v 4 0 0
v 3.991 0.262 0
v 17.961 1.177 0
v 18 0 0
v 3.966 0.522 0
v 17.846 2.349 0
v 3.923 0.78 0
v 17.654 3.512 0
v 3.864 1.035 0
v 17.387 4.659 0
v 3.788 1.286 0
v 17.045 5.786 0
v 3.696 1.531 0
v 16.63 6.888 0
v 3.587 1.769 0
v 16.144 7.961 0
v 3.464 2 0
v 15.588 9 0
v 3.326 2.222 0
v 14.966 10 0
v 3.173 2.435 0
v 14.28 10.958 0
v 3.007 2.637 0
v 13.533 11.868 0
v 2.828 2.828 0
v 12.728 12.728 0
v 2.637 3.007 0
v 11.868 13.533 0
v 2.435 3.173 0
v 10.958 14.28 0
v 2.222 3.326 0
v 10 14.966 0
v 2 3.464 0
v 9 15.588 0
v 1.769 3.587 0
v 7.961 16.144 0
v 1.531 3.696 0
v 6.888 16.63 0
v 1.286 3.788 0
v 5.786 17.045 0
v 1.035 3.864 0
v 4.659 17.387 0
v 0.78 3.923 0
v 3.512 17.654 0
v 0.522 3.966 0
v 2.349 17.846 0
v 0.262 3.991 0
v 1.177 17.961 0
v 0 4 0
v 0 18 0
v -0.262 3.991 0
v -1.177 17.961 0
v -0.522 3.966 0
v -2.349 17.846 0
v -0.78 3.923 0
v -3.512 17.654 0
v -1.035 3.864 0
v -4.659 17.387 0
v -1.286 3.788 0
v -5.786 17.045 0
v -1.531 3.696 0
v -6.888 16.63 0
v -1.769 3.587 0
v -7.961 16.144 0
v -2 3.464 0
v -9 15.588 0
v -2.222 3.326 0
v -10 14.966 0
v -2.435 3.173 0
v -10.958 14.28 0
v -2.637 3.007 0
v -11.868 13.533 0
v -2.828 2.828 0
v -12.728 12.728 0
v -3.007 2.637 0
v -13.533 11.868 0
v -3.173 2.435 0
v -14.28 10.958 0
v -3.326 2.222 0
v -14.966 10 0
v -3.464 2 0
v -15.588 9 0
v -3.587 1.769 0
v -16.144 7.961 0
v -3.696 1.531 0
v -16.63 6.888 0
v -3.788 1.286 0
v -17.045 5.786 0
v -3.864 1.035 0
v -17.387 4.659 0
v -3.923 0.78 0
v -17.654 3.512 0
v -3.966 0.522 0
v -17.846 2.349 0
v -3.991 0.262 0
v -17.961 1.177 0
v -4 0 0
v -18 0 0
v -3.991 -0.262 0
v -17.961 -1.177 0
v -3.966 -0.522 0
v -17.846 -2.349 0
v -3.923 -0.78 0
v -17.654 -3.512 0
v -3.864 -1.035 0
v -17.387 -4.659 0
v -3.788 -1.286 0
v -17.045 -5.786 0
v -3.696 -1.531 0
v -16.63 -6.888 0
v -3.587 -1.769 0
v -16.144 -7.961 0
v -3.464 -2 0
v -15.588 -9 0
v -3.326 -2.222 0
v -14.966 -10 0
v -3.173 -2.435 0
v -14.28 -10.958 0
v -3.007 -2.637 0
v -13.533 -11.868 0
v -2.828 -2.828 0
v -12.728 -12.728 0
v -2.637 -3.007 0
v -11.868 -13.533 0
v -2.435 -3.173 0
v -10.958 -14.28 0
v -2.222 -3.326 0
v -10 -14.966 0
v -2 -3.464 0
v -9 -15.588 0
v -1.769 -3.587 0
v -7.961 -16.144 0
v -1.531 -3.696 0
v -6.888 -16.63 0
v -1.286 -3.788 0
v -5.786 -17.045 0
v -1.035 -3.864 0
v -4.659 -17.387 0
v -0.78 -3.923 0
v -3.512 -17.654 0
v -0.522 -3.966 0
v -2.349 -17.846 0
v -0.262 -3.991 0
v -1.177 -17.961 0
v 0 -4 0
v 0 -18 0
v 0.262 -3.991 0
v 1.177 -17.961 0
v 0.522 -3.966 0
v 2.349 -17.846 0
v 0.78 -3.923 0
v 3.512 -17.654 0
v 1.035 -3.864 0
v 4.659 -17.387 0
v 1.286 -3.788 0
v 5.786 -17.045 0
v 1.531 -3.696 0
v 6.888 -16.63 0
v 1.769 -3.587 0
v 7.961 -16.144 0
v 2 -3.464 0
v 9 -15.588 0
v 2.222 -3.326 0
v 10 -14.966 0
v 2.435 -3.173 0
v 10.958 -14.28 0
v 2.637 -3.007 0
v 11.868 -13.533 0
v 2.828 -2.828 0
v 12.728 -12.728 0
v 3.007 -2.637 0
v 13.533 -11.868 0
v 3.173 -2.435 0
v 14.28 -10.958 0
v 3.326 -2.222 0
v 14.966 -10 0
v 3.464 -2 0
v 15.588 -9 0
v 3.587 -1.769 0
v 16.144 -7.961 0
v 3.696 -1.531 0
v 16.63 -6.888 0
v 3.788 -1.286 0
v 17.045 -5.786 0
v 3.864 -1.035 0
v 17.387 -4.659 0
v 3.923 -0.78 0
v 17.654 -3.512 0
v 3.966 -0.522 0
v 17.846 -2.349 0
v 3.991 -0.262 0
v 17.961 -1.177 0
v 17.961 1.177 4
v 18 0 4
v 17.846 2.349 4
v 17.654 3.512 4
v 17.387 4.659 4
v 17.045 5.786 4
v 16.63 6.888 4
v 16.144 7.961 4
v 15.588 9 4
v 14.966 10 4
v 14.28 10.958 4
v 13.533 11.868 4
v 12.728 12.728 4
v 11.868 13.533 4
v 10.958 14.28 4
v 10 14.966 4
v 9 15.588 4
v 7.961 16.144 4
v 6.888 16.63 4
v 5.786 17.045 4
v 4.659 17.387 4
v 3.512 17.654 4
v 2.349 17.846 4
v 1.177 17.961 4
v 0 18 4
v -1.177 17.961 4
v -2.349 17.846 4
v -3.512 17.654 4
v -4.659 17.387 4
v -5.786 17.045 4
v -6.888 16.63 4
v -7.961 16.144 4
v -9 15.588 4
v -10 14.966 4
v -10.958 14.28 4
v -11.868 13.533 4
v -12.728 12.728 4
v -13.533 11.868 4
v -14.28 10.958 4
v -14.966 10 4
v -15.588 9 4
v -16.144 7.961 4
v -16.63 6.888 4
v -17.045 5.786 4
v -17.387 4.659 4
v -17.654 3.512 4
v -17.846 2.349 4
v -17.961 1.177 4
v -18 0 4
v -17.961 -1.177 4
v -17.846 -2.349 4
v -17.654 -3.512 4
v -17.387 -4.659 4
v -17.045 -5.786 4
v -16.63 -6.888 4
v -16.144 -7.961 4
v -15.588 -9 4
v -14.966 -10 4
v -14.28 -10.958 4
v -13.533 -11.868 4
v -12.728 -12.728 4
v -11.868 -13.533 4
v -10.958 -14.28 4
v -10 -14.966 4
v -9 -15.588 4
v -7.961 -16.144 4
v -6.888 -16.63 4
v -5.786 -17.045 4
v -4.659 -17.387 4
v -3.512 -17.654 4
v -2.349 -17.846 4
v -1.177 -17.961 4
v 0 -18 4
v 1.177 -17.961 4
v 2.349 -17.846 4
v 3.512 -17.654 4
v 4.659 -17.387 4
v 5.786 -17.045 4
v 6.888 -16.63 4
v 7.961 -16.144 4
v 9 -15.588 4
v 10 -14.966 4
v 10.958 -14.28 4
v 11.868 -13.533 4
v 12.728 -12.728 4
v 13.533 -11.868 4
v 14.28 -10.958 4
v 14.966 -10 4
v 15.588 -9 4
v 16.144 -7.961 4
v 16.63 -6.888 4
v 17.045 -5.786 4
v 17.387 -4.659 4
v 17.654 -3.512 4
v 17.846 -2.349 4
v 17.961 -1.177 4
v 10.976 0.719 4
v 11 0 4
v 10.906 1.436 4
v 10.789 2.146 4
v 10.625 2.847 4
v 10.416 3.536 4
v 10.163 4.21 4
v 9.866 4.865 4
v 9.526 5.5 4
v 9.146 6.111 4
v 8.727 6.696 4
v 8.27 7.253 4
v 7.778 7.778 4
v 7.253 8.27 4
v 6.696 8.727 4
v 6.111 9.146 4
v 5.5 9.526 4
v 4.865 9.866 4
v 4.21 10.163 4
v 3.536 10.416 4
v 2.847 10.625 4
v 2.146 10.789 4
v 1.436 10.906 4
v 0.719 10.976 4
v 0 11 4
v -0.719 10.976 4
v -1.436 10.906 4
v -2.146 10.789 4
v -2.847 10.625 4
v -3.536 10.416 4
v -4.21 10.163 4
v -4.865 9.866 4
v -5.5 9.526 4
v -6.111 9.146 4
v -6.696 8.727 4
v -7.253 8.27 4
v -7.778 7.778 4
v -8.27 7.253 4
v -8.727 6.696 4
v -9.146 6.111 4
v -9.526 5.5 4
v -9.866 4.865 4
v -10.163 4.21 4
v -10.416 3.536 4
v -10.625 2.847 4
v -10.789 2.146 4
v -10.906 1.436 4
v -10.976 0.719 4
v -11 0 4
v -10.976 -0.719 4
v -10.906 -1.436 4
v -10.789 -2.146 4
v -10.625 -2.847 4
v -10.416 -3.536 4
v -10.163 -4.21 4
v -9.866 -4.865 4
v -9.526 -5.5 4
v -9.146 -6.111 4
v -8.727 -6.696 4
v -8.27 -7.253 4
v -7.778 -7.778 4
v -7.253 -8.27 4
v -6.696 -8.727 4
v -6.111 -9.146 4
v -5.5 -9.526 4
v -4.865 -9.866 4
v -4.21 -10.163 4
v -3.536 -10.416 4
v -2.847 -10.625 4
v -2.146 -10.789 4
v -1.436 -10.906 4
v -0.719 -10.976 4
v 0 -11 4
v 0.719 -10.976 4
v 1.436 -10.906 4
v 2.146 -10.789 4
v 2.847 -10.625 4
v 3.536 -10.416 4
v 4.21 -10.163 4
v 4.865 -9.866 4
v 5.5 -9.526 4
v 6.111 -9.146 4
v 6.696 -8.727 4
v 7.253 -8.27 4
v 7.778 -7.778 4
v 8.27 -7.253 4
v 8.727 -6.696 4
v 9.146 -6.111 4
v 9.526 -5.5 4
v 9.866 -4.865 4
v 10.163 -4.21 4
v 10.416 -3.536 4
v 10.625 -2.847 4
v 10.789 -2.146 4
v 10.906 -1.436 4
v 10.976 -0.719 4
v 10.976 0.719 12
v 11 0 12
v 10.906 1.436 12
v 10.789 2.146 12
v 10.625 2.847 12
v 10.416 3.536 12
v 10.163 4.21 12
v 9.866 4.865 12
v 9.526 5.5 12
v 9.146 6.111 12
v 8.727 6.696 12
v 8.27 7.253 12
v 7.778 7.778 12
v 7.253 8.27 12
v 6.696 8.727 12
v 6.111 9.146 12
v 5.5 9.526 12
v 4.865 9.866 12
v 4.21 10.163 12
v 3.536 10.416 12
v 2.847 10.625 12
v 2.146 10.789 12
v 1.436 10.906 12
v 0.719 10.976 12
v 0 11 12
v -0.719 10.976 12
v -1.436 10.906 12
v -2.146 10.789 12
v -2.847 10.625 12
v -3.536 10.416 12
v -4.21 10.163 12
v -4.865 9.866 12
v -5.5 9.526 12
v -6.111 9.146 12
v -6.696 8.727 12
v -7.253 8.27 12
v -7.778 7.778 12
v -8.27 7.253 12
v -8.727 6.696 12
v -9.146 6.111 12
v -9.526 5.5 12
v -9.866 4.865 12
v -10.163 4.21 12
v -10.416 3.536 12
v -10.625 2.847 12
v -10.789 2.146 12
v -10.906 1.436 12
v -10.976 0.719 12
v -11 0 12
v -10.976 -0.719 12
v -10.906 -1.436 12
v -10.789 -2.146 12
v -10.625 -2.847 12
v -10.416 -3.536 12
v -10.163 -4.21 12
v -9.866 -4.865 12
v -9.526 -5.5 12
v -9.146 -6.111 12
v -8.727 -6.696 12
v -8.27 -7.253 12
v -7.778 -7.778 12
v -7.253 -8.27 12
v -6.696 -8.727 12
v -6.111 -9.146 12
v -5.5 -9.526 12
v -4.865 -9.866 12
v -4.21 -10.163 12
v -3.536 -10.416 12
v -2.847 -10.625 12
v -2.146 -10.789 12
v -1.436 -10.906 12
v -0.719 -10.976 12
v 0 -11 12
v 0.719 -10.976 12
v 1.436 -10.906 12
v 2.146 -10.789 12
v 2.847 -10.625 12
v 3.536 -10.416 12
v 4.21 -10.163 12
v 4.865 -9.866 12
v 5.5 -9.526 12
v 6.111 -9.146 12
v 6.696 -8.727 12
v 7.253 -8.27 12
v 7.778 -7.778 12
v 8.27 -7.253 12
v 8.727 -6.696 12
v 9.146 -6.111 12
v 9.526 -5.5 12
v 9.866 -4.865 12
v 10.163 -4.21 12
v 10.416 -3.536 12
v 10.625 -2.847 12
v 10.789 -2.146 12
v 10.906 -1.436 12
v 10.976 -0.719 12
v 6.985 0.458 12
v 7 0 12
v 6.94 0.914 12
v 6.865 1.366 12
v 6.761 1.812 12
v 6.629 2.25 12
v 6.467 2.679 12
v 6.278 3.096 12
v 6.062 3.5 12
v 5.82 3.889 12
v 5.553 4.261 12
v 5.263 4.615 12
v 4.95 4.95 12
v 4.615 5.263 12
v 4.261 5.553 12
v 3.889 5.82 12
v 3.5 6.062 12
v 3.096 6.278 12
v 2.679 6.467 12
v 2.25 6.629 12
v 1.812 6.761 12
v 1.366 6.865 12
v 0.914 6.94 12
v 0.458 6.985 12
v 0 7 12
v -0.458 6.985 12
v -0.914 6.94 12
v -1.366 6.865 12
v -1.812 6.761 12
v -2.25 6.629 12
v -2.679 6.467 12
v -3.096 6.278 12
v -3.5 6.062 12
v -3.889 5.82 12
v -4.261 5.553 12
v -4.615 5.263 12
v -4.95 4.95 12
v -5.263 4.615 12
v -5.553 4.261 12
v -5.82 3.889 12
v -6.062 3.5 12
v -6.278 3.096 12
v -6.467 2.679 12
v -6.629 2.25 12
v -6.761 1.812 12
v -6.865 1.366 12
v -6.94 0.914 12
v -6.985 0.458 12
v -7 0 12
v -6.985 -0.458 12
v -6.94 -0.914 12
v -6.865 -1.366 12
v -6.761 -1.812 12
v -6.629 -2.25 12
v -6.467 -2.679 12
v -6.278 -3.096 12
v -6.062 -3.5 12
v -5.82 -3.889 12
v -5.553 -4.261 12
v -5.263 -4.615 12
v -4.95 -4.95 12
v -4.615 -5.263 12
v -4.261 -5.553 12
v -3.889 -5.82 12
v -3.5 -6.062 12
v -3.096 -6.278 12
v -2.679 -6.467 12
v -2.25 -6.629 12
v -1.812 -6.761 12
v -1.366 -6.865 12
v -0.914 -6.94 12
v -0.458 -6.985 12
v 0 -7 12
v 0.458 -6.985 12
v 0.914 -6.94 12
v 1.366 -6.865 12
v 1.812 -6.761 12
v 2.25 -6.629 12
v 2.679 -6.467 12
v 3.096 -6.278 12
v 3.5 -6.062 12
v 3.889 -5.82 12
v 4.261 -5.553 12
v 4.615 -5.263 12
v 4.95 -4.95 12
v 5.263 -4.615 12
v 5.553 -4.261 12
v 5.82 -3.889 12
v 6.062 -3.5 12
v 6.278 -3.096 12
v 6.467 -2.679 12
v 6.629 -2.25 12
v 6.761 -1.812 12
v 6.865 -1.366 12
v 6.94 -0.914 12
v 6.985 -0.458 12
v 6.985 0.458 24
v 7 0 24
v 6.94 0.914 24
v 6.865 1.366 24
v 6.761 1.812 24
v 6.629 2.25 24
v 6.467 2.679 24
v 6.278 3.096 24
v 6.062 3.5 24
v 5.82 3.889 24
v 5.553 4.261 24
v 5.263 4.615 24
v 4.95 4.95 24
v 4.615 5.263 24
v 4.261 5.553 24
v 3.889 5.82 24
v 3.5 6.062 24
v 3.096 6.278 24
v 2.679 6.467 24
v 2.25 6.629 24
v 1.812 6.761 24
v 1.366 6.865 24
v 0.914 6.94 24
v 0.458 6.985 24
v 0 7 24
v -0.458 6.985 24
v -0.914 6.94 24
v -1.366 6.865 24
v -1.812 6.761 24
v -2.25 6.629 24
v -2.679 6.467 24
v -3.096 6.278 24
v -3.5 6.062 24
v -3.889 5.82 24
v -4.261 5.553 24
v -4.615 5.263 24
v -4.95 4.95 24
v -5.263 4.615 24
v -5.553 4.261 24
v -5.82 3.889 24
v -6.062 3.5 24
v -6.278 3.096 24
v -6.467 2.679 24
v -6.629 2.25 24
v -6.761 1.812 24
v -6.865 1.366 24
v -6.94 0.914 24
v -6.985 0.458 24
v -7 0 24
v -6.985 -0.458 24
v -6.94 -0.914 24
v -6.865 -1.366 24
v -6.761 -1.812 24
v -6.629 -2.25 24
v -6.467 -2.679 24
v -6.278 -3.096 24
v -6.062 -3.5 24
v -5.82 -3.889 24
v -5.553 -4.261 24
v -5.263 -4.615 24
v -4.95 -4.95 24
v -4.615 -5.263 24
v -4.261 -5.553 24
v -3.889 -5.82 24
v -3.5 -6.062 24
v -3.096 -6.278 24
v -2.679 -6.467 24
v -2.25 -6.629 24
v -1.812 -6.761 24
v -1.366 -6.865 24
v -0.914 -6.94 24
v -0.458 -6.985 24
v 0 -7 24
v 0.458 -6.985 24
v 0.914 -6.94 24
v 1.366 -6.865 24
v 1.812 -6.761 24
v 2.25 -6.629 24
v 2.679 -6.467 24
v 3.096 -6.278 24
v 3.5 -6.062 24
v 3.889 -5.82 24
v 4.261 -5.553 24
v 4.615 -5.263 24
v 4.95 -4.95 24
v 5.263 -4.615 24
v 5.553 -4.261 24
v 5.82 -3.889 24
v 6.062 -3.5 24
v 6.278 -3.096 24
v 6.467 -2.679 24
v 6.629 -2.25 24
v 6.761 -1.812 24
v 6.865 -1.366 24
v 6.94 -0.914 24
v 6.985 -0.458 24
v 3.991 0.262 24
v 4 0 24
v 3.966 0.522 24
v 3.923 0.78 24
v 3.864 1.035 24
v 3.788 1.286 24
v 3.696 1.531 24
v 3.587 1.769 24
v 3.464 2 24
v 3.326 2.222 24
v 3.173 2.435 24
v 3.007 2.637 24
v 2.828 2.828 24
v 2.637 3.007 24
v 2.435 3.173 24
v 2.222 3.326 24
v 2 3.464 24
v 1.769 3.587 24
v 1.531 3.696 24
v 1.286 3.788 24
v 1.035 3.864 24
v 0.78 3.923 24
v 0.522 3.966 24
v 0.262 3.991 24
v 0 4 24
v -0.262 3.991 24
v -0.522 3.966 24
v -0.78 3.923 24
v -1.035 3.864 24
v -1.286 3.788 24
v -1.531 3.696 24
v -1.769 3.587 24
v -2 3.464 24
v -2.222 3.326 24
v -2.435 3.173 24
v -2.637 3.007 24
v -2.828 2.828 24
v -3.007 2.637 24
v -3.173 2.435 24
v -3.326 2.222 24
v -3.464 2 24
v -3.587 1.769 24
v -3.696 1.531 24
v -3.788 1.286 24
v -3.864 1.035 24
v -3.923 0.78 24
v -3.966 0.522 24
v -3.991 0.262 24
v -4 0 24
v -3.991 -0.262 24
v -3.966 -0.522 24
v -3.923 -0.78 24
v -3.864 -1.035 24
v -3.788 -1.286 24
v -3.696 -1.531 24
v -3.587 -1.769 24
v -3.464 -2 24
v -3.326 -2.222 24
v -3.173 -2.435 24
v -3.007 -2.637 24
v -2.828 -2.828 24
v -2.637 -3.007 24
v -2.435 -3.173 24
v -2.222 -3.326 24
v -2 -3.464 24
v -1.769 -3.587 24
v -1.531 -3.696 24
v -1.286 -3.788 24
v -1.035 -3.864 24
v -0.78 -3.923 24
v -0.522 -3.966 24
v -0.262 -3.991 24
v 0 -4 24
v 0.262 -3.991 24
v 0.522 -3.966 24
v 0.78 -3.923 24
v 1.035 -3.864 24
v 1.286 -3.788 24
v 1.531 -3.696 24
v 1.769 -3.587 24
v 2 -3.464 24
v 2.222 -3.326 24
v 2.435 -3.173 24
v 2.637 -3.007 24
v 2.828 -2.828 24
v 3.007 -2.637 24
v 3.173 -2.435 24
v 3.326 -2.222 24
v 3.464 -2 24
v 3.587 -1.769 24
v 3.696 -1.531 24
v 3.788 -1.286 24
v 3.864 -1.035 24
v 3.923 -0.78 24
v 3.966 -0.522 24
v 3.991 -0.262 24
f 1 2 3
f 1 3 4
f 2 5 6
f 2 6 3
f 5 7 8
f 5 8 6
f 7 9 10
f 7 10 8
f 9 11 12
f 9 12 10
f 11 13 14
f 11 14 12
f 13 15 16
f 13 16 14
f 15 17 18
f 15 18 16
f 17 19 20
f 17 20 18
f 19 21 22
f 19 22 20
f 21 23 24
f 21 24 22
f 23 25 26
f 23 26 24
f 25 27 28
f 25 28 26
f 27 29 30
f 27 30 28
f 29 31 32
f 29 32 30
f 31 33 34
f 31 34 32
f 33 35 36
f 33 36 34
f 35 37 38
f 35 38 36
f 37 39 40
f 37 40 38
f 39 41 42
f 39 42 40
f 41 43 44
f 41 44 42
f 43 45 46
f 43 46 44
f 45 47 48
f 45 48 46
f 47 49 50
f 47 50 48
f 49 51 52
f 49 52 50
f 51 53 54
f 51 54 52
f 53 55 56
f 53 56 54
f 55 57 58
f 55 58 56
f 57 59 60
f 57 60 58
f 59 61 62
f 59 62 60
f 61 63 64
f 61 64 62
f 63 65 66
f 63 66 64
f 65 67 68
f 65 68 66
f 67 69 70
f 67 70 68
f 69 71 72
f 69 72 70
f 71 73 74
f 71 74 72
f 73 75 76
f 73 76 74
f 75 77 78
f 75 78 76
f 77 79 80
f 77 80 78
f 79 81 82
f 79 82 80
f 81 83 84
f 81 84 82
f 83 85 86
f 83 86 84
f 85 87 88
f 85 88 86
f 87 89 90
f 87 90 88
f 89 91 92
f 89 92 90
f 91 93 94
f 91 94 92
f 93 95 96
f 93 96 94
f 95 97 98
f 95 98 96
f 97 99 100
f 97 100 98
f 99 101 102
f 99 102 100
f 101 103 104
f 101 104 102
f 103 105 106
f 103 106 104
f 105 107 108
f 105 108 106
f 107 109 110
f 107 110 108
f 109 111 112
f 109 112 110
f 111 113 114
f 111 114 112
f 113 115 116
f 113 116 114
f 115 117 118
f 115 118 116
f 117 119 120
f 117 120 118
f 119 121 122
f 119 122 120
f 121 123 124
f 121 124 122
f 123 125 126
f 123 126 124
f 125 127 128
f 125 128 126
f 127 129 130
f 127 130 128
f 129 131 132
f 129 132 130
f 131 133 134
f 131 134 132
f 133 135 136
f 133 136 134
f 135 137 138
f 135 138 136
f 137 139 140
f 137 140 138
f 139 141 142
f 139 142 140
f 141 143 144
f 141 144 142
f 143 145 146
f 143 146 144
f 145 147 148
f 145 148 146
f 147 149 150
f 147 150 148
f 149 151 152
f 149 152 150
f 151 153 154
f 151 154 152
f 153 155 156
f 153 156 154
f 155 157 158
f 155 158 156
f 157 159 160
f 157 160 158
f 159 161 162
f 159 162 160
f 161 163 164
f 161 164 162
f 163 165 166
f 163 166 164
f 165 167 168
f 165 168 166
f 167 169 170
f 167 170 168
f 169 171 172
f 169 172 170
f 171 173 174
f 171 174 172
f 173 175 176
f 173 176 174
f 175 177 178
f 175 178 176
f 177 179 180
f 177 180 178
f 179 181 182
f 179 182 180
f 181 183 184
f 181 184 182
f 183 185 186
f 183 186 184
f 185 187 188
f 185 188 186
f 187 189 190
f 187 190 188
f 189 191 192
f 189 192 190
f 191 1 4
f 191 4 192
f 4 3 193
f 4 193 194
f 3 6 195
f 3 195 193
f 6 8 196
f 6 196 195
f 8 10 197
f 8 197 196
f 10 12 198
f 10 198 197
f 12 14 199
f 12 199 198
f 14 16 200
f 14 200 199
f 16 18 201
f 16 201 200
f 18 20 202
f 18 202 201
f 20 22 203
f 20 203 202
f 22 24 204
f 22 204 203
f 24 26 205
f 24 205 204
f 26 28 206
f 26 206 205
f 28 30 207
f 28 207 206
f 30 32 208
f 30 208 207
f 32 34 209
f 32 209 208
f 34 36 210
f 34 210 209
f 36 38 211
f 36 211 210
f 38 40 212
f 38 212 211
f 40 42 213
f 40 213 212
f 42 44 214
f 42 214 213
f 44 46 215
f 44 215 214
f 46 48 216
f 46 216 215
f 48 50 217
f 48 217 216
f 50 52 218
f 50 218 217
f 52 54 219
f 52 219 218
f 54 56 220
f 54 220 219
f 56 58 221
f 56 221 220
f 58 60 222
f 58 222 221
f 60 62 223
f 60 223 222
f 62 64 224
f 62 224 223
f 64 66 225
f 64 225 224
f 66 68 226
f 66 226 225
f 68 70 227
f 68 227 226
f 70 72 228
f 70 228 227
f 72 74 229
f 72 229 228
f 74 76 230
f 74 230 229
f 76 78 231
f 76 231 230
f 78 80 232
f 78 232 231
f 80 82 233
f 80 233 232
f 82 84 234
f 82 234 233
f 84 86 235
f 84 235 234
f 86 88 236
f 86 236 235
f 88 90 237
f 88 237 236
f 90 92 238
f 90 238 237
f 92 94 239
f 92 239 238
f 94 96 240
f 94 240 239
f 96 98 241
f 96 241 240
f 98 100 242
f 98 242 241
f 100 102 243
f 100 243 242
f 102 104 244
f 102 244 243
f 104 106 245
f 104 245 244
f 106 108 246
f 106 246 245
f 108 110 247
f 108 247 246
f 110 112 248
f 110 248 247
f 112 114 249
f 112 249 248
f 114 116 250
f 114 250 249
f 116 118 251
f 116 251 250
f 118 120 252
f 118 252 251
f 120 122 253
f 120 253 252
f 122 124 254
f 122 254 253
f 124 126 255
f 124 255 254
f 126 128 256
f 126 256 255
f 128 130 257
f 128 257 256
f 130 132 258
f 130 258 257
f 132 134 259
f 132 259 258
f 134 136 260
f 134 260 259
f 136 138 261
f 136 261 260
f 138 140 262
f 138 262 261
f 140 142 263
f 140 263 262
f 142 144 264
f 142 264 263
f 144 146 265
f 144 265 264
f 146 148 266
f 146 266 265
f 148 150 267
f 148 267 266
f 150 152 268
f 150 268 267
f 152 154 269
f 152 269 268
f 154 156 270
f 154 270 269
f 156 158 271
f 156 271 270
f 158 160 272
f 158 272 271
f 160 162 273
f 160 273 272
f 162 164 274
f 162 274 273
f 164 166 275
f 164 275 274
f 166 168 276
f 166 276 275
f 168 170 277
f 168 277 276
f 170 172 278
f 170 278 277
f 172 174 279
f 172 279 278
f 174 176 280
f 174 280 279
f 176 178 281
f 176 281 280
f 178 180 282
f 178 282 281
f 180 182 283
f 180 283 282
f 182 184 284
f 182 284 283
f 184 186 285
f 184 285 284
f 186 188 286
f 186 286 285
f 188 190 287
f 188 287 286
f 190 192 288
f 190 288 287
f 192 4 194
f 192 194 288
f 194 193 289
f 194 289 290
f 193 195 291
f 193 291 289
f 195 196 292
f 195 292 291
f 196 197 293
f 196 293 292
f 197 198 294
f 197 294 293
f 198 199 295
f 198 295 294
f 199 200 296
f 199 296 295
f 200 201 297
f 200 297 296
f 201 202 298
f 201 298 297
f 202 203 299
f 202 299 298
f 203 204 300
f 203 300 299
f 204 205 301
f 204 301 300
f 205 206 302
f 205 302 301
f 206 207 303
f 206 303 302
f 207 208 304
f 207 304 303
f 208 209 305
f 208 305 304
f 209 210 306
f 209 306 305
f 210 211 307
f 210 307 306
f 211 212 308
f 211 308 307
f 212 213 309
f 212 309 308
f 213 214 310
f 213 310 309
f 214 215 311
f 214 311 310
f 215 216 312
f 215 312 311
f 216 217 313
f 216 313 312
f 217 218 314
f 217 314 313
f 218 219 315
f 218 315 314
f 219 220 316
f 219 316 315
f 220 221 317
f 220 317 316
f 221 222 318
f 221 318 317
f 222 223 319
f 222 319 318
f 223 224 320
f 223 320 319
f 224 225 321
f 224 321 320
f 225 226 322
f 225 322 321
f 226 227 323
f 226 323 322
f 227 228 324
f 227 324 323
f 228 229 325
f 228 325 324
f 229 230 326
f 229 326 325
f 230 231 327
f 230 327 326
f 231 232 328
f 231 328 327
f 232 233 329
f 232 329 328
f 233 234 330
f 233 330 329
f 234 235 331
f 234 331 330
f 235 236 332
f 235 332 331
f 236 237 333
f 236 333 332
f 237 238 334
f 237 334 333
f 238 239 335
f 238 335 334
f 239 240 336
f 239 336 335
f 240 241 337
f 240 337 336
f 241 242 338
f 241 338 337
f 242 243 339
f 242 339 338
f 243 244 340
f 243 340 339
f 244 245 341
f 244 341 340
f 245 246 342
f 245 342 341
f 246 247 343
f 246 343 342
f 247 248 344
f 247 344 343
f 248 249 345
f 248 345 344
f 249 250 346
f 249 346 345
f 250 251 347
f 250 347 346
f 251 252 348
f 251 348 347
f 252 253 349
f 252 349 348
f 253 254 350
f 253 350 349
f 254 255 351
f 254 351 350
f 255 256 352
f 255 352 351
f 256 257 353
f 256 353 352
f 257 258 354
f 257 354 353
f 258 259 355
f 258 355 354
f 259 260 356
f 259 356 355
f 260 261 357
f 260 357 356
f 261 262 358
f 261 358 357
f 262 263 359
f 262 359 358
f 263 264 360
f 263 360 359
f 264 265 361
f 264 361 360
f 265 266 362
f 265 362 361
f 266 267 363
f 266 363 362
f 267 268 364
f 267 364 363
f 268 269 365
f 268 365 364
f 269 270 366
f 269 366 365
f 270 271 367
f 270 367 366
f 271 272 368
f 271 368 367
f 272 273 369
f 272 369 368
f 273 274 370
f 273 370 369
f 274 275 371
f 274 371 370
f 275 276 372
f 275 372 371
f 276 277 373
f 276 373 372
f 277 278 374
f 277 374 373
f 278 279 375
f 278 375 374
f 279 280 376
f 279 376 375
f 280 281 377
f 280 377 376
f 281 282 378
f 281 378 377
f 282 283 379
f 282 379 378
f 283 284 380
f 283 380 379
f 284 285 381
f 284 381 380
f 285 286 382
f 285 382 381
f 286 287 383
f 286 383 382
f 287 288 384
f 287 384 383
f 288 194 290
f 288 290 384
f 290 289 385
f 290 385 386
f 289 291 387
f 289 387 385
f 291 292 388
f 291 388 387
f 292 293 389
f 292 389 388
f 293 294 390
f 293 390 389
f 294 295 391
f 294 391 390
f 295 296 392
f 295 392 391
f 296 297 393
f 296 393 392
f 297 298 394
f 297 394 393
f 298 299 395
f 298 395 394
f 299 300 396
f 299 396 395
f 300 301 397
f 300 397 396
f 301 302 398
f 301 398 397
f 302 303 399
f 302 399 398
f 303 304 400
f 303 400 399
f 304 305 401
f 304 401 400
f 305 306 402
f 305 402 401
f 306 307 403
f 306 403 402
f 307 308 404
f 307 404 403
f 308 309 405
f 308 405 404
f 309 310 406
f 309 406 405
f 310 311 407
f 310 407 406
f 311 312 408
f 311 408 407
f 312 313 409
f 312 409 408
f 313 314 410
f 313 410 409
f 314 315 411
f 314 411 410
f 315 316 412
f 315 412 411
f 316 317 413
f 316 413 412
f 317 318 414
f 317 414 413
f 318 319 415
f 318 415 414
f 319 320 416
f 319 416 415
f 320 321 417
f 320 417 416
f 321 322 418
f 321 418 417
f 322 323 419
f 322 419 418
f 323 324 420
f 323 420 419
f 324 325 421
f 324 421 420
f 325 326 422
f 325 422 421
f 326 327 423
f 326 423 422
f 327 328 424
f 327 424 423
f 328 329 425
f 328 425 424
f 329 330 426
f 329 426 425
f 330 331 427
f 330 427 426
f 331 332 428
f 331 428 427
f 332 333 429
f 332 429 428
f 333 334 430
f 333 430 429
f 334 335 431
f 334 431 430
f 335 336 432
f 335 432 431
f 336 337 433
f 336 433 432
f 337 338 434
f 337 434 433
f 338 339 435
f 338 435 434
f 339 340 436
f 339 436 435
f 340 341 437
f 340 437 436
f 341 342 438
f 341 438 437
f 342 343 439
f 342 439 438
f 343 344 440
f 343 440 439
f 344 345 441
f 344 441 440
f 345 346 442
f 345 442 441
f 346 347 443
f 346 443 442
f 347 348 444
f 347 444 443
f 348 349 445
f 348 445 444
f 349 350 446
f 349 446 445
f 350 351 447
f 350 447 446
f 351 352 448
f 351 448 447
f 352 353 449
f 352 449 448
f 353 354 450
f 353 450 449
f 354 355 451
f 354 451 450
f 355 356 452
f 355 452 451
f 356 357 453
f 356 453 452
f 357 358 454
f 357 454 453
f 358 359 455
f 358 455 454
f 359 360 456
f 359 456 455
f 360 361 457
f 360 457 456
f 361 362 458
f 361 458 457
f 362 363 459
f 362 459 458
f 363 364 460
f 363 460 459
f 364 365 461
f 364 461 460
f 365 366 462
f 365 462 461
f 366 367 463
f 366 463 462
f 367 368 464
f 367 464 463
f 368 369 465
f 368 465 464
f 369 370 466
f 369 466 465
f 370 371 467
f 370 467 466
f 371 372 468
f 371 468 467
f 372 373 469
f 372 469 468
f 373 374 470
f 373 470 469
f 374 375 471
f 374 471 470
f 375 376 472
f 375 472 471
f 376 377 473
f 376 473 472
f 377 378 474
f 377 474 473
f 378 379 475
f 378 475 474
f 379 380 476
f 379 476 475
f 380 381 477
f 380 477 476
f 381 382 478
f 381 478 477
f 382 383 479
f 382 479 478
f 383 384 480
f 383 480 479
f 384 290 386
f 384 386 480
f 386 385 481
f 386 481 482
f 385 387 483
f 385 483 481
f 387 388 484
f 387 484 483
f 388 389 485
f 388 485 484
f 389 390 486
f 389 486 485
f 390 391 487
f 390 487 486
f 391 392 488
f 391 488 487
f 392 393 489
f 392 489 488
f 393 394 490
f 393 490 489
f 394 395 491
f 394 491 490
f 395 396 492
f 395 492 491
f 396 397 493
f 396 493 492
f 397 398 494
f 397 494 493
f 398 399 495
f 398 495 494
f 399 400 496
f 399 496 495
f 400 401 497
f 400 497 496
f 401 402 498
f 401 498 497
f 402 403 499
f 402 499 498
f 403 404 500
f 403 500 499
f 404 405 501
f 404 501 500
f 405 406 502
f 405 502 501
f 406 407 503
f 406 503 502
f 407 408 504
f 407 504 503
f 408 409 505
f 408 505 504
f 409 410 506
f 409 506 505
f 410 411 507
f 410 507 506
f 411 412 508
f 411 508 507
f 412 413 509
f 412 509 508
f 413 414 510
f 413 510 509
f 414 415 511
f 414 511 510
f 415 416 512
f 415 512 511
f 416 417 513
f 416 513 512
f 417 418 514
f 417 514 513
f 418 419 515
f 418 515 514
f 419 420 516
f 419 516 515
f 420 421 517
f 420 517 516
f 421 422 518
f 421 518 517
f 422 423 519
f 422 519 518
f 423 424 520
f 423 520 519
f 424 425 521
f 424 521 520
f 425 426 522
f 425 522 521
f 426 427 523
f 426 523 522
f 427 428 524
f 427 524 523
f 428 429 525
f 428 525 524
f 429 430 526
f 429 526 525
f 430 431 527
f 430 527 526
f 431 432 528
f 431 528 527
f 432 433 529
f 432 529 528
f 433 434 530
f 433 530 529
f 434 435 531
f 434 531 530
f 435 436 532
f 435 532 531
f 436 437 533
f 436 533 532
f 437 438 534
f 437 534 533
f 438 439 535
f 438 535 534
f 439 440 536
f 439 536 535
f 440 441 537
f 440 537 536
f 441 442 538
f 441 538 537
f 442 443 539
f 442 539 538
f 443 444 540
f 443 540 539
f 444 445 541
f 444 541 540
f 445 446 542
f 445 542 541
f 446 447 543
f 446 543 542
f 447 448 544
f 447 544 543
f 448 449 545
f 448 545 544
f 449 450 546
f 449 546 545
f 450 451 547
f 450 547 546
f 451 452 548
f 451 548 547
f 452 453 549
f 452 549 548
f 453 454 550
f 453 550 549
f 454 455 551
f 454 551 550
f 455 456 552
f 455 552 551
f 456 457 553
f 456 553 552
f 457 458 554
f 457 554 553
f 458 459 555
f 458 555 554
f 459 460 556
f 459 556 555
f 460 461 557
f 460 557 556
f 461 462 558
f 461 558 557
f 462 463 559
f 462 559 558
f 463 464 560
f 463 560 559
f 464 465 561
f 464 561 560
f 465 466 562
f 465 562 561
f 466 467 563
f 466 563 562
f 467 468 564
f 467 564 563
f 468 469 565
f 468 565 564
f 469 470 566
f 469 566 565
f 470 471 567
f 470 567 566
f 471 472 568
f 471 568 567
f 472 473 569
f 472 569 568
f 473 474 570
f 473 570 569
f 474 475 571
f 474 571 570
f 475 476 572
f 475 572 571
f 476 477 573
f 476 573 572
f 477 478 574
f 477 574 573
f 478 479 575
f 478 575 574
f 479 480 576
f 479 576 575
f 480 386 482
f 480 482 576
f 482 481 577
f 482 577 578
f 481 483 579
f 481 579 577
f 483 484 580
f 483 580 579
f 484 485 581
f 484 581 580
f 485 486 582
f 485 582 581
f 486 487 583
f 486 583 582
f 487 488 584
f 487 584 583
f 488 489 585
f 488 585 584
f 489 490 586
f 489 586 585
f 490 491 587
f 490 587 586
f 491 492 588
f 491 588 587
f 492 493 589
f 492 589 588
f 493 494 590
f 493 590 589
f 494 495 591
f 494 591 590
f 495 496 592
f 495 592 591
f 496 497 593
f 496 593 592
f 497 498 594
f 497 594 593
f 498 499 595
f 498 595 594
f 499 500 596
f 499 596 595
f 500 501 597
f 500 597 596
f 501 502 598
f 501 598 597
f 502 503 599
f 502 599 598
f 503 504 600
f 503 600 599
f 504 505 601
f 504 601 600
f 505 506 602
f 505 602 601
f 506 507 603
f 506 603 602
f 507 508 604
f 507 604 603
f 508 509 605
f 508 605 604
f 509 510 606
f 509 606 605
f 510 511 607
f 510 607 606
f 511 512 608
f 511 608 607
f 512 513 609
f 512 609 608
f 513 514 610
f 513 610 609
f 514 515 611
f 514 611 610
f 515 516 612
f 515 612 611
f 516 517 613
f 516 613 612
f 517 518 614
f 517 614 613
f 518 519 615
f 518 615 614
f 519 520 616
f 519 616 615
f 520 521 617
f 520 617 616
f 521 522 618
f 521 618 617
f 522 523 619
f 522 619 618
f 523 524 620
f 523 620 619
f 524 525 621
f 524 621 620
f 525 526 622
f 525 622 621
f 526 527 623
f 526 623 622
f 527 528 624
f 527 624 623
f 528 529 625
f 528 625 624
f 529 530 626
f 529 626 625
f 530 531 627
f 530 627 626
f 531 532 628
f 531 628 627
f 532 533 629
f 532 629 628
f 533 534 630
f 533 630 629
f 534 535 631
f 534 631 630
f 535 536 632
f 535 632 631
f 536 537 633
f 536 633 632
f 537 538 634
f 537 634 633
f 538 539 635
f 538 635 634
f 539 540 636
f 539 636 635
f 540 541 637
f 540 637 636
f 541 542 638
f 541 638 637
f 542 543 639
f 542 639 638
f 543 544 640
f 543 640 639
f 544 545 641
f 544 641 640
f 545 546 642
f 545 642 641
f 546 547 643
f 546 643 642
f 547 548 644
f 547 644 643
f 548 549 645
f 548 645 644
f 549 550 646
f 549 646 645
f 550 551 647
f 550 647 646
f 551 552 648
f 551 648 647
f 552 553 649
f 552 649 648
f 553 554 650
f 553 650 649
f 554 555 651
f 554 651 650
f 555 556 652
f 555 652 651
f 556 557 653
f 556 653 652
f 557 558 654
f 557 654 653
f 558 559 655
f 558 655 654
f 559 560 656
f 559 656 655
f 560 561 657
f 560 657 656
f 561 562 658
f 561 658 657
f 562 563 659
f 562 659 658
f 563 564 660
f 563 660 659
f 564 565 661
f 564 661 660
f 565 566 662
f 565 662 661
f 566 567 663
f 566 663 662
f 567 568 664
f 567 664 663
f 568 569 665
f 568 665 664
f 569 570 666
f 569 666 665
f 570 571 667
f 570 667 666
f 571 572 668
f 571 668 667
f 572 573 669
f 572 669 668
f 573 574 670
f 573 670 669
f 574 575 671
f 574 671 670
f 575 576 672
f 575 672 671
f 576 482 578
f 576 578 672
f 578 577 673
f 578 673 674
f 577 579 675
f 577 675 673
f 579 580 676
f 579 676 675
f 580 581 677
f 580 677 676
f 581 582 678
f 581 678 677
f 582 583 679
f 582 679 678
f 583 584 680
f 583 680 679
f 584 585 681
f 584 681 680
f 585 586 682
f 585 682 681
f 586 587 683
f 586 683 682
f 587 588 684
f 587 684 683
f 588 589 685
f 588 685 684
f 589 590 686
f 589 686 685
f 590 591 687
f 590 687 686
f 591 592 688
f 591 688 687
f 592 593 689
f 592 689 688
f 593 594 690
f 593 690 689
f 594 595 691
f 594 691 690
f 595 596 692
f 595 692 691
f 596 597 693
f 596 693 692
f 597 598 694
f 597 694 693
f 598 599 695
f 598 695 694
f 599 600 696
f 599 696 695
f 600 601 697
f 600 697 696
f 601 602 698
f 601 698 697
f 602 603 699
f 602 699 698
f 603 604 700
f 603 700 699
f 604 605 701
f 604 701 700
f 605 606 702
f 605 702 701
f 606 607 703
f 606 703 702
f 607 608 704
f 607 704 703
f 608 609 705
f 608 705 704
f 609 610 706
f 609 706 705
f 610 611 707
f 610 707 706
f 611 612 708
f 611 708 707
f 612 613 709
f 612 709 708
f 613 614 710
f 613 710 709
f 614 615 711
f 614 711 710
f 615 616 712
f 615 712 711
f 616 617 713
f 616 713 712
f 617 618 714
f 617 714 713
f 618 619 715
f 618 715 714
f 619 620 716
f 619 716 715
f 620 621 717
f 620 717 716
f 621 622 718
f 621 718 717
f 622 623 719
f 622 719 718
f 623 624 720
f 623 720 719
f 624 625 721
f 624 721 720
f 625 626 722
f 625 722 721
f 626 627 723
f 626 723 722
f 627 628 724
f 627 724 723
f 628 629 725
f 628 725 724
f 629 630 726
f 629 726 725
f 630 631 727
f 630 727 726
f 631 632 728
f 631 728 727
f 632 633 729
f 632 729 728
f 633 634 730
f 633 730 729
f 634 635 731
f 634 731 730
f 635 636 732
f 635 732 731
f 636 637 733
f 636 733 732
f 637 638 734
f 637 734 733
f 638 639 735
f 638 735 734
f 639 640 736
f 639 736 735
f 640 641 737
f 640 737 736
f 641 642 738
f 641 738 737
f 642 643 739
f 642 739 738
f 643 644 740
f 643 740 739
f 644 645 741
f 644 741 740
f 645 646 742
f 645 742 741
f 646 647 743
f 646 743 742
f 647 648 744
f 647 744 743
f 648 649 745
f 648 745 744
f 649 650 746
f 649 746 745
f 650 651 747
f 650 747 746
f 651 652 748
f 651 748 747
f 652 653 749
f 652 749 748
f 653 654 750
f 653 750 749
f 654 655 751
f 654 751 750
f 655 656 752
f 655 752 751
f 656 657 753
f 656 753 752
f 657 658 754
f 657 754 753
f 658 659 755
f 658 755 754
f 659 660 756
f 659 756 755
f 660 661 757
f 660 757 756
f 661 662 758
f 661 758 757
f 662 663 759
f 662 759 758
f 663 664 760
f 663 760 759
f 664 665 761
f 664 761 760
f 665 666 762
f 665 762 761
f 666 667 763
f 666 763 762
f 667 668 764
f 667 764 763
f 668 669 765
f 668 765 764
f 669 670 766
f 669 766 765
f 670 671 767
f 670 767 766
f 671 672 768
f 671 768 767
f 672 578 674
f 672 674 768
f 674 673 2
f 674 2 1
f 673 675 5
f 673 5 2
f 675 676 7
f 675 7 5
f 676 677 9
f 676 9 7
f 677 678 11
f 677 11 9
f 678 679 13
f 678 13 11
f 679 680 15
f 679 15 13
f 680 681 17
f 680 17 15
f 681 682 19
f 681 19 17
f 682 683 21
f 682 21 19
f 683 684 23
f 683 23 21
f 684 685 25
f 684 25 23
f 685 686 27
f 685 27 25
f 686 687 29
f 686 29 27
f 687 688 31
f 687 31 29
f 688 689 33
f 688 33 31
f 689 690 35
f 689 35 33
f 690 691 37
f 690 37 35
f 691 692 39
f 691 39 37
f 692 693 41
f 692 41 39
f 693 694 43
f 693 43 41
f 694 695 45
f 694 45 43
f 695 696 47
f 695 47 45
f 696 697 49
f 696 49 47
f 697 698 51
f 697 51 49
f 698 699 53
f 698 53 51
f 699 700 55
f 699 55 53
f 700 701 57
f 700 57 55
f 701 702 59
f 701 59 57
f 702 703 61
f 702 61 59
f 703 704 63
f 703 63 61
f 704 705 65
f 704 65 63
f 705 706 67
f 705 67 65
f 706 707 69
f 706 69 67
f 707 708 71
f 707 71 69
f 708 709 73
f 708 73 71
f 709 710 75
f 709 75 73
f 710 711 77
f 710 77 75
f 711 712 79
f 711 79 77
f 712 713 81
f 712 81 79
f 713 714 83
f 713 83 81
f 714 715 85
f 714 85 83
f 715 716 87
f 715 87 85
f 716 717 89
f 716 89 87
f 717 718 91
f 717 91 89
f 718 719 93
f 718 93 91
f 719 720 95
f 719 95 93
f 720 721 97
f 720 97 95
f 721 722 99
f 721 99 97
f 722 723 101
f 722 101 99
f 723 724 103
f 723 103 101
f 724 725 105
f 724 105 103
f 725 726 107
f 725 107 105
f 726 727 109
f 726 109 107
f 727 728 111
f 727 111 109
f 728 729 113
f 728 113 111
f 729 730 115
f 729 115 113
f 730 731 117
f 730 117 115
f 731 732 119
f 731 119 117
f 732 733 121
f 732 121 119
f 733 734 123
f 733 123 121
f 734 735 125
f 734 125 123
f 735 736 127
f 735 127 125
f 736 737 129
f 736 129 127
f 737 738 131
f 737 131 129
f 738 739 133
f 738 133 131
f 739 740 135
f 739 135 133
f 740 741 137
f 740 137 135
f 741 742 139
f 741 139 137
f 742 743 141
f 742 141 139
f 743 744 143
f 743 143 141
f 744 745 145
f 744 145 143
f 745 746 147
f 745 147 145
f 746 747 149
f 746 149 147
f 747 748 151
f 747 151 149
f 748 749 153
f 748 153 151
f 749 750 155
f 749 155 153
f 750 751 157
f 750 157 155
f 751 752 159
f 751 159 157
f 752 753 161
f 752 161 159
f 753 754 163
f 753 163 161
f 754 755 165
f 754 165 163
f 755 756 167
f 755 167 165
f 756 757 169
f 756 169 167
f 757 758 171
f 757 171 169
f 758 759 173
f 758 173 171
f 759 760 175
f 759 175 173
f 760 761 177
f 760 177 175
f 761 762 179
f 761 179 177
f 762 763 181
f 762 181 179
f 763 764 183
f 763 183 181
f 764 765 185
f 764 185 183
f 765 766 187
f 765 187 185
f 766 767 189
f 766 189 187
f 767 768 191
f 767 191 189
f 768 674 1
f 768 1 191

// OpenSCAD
// Original MechIntel educational model. CC0-1.0. Units: mm.
// Not a standardized or load-rated component.
$fn=96;
// Section points: [radius, height], mm. Edit to change the profile.
section=[[4, 0], [18, 0], [18, 4], [11, 4], [11, 12], [7, 12], [7, 24], [4, 24]];
rotate_extrude($fn=96) polygon(points=section);
